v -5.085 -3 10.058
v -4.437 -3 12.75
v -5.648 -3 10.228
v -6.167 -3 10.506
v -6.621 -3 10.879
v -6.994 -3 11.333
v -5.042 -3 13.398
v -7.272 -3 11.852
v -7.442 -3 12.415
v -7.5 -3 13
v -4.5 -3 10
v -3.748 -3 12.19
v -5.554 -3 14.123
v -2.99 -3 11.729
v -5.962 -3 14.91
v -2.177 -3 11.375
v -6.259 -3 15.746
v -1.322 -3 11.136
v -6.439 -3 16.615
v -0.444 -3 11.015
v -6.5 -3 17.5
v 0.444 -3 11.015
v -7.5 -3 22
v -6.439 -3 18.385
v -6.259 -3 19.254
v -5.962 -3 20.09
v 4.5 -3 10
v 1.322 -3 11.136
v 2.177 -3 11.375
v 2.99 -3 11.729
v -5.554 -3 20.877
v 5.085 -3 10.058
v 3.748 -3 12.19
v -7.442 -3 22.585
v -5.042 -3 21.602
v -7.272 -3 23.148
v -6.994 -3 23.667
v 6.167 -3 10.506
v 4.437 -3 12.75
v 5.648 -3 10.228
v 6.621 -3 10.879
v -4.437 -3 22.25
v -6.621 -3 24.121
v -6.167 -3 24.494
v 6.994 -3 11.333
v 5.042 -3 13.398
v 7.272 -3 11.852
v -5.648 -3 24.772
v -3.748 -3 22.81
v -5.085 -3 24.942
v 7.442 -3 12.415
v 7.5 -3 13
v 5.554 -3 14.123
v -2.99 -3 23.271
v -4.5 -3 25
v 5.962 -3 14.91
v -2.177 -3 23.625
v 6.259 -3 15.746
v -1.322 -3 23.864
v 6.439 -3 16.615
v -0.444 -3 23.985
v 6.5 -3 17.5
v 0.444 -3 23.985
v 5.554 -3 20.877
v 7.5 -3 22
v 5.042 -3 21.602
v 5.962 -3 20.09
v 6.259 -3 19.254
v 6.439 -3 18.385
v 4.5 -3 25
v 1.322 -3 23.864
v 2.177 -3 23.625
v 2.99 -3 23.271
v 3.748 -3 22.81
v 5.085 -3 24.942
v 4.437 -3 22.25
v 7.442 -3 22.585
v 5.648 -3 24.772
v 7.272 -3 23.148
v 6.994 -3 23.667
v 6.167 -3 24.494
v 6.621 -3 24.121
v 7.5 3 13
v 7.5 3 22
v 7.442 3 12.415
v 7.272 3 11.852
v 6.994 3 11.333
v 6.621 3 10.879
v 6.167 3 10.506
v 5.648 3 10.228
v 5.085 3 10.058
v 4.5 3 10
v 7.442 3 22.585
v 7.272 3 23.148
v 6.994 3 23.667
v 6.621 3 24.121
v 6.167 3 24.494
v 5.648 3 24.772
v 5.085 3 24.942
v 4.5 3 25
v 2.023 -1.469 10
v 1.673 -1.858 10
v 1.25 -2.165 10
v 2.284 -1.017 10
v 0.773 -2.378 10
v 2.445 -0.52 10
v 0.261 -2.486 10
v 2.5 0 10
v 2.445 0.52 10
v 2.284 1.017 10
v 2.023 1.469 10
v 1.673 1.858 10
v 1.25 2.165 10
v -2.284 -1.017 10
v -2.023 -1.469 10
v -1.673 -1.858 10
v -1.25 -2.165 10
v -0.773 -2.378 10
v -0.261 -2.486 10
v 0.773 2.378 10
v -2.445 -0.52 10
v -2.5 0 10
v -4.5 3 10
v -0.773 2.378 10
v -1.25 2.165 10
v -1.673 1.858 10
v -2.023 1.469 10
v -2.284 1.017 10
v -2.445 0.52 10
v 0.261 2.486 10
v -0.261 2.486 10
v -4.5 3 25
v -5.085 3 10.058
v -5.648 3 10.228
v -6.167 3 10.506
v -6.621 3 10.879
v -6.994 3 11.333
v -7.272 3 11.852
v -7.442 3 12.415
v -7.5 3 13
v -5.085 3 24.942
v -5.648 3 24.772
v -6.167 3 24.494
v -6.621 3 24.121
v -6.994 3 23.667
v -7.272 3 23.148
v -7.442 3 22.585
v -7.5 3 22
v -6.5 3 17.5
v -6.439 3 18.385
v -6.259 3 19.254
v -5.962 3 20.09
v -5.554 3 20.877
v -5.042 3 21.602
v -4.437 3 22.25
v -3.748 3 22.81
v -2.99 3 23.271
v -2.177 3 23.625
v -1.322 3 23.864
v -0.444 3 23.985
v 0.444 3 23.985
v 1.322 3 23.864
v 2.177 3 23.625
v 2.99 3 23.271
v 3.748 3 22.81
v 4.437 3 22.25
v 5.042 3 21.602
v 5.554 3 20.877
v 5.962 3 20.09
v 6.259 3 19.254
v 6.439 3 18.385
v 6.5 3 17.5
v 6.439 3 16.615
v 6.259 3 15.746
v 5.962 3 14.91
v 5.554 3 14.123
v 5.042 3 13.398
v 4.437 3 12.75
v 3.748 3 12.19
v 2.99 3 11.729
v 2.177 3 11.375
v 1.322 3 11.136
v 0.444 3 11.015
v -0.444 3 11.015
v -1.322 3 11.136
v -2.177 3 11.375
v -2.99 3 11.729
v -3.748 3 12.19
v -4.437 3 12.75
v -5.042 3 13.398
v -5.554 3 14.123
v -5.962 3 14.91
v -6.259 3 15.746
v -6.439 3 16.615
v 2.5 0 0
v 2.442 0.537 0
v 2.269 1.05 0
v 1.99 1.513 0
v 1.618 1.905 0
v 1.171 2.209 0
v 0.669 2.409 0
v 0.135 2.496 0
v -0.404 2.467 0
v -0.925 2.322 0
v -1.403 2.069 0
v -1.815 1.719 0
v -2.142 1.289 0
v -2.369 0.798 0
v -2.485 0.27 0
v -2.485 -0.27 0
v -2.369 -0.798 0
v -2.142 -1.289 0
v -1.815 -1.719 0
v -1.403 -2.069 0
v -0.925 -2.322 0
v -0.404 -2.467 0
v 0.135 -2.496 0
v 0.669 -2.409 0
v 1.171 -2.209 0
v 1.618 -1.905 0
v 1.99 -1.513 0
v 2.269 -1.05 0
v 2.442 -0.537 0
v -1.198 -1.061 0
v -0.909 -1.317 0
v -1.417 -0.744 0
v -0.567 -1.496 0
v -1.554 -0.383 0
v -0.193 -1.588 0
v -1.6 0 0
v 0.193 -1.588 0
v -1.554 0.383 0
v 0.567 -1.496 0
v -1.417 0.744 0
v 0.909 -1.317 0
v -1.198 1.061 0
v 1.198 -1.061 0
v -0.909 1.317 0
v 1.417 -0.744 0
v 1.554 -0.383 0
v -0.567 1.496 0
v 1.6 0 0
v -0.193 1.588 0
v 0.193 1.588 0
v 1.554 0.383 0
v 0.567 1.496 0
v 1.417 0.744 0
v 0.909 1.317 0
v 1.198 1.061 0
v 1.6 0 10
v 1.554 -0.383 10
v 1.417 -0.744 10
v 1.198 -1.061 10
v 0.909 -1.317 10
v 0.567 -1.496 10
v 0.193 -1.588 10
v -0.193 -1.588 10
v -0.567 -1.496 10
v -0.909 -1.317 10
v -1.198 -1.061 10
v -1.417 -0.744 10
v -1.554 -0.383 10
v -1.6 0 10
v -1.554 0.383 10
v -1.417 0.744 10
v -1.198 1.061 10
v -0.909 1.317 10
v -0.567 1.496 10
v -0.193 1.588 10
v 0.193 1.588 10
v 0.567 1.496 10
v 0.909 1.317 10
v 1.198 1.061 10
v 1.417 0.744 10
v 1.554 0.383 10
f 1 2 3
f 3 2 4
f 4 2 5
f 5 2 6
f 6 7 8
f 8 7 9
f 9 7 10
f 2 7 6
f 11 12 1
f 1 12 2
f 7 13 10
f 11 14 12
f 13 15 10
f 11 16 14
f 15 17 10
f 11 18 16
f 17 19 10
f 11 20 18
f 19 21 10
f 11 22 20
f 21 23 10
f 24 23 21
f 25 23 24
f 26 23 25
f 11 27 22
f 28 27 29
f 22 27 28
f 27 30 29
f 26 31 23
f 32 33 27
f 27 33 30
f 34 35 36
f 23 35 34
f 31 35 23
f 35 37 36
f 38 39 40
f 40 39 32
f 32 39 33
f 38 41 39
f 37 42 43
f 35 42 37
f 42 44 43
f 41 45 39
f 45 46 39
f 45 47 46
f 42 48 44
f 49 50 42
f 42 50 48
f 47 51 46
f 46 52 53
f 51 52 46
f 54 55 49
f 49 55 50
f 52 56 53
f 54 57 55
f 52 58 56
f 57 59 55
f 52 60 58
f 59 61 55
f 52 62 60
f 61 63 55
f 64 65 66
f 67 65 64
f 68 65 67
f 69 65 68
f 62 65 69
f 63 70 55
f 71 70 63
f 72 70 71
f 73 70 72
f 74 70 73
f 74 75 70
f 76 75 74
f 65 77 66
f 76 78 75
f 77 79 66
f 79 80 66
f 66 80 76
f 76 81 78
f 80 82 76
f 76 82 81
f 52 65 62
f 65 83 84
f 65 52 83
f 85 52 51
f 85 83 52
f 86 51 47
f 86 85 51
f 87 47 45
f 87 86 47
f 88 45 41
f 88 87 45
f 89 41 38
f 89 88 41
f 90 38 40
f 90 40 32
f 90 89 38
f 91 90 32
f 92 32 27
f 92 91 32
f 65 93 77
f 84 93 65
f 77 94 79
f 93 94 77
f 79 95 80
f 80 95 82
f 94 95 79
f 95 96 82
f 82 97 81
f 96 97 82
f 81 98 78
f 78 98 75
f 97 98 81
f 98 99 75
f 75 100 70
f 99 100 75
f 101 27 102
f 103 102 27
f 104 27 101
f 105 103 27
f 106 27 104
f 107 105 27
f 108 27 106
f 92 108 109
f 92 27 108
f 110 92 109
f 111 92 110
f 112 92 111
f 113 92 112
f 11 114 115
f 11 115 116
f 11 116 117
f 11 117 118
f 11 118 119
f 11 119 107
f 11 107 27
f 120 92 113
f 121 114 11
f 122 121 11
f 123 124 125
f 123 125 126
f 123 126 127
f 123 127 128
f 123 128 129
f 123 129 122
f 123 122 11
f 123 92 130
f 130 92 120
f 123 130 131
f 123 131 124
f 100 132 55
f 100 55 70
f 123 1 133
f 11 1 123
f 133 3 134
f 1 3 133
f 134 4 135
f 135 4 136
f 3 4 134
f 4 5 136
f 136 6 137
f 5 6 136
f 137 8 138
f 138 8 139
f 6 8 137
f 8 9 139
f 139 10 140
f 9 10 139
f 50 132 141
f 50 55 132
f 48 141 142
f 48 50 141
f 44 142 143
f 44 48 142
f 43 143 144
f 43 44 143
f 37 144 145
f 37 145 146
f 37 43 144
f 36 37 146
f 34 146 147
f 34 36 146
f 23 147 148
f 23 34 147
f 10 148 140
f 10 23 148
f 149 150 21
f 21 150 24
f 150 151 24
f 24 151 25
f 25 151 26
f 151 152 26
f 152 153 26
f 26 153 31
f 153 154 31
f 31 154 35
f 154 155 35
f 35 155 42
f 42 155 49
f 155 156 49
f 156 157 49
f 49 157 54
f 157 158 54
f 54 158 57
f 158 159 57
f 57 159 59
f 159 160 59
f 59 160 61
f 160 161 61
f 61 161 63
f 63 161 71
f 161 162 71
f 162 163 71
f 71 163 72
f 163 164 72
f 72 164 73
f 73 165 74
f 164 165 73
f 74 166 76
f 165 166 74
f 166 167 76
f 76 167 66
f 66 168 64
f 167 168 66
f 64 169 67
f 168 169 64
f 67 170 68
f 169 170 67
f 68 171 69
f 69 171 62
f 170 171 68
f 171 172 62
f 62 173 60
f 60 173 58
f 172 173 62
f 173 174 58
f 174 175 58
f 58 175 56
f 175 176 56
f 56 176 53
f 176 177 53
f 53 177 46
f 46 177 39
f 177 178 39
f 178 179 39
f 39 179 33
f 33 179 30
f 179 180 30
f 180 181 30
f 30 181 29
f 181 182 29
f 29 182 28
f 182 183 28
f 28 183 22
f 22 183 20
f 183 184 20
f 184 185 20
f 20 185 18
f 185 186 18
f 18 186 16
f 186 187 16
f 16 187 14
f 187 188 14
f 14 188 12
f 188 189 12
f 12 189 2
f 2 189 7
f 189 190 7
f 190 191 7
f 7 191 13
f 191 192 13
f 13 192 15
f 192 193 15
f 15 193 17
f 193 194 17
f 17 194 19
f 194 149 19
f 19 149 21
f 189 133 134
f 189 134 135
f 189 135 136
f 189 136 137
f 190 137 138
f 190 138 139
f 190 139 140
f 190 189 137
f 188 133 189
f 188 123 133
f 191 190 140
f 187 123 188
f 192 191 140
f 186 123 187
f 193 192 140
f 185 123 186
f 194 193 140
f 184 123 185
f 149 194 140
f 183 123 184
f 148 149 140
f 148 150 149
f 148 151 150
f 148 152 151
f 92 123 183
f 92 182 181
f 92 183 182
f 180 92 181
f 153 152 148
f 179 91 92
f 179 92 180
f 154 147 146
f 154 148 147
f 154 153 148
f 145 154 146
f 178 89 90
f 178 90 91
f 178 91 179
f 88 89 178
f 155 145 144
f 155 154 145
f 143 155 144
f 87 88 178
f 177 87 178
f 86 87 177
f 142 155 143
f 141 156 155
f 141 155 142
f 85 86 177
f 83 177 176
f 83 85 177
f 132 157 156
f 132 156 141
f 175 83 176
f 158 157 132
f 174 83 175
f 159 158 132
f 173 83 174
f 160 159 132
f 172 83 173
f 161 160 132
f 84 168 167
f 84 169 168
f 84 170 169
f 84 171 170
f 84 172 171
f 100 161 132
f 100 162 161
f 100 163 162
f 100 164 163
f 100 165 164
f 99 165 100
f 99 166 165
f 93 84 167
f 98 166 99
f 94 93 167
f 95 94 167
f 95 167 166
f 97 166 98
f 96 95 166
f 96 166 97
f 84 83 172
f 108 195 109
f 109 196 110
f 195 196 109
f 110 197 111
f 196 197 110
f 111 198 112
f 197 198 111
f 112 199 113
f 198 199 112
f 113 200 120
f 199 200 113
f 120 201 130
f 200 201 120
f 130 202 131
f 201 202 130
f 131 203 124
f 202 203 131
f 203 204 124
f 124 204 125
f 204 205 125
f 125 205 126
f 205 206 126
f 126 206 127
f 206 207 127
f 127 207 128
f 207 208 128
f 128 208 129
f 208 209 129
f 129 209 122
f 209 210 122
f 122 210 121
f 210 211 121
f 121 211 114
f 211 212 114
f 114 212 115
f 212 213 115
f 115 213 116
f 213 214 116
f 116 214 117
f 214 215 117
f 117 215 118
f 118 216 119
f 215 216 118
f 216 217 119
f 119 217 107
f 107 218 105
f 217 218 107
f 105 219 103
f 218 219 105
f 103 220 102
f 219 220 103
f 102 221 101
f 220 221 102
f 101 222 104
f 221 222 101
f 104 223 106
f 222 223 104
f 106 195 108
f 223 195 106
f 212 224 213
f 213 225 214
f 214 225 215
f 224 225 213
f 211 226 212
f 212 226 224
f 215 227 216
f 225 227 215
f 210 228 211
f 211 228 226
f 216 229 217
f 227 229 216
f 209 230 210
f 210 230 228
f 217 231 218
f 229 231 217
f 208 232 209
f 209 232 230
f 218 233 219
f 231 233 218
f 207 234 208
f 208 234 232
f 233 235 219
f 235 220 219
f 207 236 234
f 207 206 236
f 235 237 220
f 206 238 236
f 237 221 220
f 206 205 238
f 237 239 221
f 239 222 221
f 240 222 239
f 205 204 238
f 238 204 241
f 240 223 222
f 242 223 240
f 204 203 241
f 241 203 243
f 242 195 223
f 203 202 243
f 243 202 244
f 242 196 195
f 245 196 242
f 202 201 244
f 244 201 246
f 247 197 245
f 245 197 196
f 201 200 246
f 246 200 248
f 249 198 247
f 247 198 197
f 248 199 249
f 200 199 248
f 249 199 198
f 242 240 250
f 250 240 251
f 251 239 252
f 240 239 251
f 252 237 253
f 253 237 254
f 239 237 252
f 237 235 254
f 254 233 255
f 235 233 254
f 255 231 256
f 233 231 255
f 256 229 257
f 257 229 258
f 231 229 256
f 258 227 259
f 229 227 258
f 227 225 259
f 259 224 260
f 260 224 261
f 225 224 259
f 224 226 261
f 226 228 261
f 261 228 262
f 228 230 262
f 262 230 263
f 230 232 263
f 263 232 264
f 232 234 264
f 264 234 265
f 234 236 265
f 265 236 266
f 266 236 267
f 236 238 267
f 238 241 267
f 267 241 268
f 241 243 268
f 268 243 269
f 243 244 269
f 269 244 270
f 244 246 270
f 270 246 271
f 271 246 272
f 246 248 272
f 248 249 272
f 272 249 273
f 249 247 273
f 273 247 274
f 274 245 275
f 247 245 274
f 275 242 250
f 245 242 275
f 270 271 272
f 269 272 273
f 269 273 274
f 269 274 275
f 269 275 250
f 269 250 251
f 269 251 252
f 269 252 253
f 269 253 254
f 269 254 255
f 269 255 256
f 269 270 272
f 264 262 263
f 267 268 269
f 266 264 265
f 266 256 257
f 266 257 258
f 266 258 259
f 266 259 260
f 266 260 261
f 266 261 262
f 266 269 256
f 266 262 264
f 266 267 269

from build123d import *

# Parameters (mm, degrees)
SKETCH_R        = 2.5
PAD_DEPTH       = 20
SKETCH001_R     = 1.6
POCKET_DEPTH    = 10
POCKET_FACE3_R  = 2.5
POCKET001_DEPTH = 10
SKETCH002_W     = 15
SKETCH002_H     = 15
PAD001_DEPTH    = 3
PAD002_DEPTH    = 3
SKETCH003_R     = 6.5
POCKET002_DEPTH = 6.001
FILLET_R        = 3


with BuildPart() as part:
    # Sketch → Pad (new body)
    with BuildSketch(Plane.XY):
        Circle(SKETCH_R)
    extrude(amount=PAD_DEPTH)

    # Sketch001 (on Face2 of Pad) → Pocket (cut)
    with BuildSketch(Plane(origin=(0, 0, 0), x_dir=(1, 0, 0), z_dir=(0, 0, -1))):
        Circle(SKETCH001_R)
    extrude(amount=-POCKET_DEPTH, mode=Mode.SUBTRACT)

    # Pocket Face3 → Pocket001 (cut)
    with BuildSketch(Plane(origin=(0, 0, 20), x_dir=(0, 1, 0), z_dir=(0, 0, 1))):
        Circle(POCKET_FACE3_R)
    extrude(amount=-POCKET001_DEPTH, mode=Mode.SUBTRACT)

    # Sketch002 → Pad001 (join)
    with BuildSketch(Plane.XZ):
        with Locations((0, 17.5)):
            Rectangle(SKETCH002_W, SKETCH002_H)
    extrude(amount=PAD001_DEPTH)

    # Pad001 Face5 → Pad002 (add)
    with BuildSketch(Plane(origin=(0, 0, 17.5), x_dir=(1, 0, 0), z_dir=(0, 1, 0))):
        Polygon((7.5, -7.5), (7.5, 7.5), (2.5, 7.5), (1.6, 7.5), (-1.6, 7.5), (-2.5, 7.5), (-7.5, 7.5), (-7.5, -7.5), align=None)
    extrude(amount=PAD002_DEPTH)

    # Sketch003 (on Face3 of Pad002) → Pocket002 (cut, through all)
    with BuildSketch(Plane(origin=(0, 3, 0), x_dir=(-1, 0, 0), z_dir=(0, 1, 0))):
        with Locations((0, 17.5)):
            Circle(SKETCH003_R)
    extrude(amount=-POCKET002_DEPTH, mode=Mode.SUBTRACT)

    # Fillet
    fillet_edges = [part.edges().sort_by_distance(p)[0] for p in [
        (-7.5, 0, 25),
        (-7.5, 0, 10),
        (7.5, 0, 25),
        (7.5, 0, 10),
    ]]
    fillet(fillet_edges, radius=FILLET_R)


solid = part.part
